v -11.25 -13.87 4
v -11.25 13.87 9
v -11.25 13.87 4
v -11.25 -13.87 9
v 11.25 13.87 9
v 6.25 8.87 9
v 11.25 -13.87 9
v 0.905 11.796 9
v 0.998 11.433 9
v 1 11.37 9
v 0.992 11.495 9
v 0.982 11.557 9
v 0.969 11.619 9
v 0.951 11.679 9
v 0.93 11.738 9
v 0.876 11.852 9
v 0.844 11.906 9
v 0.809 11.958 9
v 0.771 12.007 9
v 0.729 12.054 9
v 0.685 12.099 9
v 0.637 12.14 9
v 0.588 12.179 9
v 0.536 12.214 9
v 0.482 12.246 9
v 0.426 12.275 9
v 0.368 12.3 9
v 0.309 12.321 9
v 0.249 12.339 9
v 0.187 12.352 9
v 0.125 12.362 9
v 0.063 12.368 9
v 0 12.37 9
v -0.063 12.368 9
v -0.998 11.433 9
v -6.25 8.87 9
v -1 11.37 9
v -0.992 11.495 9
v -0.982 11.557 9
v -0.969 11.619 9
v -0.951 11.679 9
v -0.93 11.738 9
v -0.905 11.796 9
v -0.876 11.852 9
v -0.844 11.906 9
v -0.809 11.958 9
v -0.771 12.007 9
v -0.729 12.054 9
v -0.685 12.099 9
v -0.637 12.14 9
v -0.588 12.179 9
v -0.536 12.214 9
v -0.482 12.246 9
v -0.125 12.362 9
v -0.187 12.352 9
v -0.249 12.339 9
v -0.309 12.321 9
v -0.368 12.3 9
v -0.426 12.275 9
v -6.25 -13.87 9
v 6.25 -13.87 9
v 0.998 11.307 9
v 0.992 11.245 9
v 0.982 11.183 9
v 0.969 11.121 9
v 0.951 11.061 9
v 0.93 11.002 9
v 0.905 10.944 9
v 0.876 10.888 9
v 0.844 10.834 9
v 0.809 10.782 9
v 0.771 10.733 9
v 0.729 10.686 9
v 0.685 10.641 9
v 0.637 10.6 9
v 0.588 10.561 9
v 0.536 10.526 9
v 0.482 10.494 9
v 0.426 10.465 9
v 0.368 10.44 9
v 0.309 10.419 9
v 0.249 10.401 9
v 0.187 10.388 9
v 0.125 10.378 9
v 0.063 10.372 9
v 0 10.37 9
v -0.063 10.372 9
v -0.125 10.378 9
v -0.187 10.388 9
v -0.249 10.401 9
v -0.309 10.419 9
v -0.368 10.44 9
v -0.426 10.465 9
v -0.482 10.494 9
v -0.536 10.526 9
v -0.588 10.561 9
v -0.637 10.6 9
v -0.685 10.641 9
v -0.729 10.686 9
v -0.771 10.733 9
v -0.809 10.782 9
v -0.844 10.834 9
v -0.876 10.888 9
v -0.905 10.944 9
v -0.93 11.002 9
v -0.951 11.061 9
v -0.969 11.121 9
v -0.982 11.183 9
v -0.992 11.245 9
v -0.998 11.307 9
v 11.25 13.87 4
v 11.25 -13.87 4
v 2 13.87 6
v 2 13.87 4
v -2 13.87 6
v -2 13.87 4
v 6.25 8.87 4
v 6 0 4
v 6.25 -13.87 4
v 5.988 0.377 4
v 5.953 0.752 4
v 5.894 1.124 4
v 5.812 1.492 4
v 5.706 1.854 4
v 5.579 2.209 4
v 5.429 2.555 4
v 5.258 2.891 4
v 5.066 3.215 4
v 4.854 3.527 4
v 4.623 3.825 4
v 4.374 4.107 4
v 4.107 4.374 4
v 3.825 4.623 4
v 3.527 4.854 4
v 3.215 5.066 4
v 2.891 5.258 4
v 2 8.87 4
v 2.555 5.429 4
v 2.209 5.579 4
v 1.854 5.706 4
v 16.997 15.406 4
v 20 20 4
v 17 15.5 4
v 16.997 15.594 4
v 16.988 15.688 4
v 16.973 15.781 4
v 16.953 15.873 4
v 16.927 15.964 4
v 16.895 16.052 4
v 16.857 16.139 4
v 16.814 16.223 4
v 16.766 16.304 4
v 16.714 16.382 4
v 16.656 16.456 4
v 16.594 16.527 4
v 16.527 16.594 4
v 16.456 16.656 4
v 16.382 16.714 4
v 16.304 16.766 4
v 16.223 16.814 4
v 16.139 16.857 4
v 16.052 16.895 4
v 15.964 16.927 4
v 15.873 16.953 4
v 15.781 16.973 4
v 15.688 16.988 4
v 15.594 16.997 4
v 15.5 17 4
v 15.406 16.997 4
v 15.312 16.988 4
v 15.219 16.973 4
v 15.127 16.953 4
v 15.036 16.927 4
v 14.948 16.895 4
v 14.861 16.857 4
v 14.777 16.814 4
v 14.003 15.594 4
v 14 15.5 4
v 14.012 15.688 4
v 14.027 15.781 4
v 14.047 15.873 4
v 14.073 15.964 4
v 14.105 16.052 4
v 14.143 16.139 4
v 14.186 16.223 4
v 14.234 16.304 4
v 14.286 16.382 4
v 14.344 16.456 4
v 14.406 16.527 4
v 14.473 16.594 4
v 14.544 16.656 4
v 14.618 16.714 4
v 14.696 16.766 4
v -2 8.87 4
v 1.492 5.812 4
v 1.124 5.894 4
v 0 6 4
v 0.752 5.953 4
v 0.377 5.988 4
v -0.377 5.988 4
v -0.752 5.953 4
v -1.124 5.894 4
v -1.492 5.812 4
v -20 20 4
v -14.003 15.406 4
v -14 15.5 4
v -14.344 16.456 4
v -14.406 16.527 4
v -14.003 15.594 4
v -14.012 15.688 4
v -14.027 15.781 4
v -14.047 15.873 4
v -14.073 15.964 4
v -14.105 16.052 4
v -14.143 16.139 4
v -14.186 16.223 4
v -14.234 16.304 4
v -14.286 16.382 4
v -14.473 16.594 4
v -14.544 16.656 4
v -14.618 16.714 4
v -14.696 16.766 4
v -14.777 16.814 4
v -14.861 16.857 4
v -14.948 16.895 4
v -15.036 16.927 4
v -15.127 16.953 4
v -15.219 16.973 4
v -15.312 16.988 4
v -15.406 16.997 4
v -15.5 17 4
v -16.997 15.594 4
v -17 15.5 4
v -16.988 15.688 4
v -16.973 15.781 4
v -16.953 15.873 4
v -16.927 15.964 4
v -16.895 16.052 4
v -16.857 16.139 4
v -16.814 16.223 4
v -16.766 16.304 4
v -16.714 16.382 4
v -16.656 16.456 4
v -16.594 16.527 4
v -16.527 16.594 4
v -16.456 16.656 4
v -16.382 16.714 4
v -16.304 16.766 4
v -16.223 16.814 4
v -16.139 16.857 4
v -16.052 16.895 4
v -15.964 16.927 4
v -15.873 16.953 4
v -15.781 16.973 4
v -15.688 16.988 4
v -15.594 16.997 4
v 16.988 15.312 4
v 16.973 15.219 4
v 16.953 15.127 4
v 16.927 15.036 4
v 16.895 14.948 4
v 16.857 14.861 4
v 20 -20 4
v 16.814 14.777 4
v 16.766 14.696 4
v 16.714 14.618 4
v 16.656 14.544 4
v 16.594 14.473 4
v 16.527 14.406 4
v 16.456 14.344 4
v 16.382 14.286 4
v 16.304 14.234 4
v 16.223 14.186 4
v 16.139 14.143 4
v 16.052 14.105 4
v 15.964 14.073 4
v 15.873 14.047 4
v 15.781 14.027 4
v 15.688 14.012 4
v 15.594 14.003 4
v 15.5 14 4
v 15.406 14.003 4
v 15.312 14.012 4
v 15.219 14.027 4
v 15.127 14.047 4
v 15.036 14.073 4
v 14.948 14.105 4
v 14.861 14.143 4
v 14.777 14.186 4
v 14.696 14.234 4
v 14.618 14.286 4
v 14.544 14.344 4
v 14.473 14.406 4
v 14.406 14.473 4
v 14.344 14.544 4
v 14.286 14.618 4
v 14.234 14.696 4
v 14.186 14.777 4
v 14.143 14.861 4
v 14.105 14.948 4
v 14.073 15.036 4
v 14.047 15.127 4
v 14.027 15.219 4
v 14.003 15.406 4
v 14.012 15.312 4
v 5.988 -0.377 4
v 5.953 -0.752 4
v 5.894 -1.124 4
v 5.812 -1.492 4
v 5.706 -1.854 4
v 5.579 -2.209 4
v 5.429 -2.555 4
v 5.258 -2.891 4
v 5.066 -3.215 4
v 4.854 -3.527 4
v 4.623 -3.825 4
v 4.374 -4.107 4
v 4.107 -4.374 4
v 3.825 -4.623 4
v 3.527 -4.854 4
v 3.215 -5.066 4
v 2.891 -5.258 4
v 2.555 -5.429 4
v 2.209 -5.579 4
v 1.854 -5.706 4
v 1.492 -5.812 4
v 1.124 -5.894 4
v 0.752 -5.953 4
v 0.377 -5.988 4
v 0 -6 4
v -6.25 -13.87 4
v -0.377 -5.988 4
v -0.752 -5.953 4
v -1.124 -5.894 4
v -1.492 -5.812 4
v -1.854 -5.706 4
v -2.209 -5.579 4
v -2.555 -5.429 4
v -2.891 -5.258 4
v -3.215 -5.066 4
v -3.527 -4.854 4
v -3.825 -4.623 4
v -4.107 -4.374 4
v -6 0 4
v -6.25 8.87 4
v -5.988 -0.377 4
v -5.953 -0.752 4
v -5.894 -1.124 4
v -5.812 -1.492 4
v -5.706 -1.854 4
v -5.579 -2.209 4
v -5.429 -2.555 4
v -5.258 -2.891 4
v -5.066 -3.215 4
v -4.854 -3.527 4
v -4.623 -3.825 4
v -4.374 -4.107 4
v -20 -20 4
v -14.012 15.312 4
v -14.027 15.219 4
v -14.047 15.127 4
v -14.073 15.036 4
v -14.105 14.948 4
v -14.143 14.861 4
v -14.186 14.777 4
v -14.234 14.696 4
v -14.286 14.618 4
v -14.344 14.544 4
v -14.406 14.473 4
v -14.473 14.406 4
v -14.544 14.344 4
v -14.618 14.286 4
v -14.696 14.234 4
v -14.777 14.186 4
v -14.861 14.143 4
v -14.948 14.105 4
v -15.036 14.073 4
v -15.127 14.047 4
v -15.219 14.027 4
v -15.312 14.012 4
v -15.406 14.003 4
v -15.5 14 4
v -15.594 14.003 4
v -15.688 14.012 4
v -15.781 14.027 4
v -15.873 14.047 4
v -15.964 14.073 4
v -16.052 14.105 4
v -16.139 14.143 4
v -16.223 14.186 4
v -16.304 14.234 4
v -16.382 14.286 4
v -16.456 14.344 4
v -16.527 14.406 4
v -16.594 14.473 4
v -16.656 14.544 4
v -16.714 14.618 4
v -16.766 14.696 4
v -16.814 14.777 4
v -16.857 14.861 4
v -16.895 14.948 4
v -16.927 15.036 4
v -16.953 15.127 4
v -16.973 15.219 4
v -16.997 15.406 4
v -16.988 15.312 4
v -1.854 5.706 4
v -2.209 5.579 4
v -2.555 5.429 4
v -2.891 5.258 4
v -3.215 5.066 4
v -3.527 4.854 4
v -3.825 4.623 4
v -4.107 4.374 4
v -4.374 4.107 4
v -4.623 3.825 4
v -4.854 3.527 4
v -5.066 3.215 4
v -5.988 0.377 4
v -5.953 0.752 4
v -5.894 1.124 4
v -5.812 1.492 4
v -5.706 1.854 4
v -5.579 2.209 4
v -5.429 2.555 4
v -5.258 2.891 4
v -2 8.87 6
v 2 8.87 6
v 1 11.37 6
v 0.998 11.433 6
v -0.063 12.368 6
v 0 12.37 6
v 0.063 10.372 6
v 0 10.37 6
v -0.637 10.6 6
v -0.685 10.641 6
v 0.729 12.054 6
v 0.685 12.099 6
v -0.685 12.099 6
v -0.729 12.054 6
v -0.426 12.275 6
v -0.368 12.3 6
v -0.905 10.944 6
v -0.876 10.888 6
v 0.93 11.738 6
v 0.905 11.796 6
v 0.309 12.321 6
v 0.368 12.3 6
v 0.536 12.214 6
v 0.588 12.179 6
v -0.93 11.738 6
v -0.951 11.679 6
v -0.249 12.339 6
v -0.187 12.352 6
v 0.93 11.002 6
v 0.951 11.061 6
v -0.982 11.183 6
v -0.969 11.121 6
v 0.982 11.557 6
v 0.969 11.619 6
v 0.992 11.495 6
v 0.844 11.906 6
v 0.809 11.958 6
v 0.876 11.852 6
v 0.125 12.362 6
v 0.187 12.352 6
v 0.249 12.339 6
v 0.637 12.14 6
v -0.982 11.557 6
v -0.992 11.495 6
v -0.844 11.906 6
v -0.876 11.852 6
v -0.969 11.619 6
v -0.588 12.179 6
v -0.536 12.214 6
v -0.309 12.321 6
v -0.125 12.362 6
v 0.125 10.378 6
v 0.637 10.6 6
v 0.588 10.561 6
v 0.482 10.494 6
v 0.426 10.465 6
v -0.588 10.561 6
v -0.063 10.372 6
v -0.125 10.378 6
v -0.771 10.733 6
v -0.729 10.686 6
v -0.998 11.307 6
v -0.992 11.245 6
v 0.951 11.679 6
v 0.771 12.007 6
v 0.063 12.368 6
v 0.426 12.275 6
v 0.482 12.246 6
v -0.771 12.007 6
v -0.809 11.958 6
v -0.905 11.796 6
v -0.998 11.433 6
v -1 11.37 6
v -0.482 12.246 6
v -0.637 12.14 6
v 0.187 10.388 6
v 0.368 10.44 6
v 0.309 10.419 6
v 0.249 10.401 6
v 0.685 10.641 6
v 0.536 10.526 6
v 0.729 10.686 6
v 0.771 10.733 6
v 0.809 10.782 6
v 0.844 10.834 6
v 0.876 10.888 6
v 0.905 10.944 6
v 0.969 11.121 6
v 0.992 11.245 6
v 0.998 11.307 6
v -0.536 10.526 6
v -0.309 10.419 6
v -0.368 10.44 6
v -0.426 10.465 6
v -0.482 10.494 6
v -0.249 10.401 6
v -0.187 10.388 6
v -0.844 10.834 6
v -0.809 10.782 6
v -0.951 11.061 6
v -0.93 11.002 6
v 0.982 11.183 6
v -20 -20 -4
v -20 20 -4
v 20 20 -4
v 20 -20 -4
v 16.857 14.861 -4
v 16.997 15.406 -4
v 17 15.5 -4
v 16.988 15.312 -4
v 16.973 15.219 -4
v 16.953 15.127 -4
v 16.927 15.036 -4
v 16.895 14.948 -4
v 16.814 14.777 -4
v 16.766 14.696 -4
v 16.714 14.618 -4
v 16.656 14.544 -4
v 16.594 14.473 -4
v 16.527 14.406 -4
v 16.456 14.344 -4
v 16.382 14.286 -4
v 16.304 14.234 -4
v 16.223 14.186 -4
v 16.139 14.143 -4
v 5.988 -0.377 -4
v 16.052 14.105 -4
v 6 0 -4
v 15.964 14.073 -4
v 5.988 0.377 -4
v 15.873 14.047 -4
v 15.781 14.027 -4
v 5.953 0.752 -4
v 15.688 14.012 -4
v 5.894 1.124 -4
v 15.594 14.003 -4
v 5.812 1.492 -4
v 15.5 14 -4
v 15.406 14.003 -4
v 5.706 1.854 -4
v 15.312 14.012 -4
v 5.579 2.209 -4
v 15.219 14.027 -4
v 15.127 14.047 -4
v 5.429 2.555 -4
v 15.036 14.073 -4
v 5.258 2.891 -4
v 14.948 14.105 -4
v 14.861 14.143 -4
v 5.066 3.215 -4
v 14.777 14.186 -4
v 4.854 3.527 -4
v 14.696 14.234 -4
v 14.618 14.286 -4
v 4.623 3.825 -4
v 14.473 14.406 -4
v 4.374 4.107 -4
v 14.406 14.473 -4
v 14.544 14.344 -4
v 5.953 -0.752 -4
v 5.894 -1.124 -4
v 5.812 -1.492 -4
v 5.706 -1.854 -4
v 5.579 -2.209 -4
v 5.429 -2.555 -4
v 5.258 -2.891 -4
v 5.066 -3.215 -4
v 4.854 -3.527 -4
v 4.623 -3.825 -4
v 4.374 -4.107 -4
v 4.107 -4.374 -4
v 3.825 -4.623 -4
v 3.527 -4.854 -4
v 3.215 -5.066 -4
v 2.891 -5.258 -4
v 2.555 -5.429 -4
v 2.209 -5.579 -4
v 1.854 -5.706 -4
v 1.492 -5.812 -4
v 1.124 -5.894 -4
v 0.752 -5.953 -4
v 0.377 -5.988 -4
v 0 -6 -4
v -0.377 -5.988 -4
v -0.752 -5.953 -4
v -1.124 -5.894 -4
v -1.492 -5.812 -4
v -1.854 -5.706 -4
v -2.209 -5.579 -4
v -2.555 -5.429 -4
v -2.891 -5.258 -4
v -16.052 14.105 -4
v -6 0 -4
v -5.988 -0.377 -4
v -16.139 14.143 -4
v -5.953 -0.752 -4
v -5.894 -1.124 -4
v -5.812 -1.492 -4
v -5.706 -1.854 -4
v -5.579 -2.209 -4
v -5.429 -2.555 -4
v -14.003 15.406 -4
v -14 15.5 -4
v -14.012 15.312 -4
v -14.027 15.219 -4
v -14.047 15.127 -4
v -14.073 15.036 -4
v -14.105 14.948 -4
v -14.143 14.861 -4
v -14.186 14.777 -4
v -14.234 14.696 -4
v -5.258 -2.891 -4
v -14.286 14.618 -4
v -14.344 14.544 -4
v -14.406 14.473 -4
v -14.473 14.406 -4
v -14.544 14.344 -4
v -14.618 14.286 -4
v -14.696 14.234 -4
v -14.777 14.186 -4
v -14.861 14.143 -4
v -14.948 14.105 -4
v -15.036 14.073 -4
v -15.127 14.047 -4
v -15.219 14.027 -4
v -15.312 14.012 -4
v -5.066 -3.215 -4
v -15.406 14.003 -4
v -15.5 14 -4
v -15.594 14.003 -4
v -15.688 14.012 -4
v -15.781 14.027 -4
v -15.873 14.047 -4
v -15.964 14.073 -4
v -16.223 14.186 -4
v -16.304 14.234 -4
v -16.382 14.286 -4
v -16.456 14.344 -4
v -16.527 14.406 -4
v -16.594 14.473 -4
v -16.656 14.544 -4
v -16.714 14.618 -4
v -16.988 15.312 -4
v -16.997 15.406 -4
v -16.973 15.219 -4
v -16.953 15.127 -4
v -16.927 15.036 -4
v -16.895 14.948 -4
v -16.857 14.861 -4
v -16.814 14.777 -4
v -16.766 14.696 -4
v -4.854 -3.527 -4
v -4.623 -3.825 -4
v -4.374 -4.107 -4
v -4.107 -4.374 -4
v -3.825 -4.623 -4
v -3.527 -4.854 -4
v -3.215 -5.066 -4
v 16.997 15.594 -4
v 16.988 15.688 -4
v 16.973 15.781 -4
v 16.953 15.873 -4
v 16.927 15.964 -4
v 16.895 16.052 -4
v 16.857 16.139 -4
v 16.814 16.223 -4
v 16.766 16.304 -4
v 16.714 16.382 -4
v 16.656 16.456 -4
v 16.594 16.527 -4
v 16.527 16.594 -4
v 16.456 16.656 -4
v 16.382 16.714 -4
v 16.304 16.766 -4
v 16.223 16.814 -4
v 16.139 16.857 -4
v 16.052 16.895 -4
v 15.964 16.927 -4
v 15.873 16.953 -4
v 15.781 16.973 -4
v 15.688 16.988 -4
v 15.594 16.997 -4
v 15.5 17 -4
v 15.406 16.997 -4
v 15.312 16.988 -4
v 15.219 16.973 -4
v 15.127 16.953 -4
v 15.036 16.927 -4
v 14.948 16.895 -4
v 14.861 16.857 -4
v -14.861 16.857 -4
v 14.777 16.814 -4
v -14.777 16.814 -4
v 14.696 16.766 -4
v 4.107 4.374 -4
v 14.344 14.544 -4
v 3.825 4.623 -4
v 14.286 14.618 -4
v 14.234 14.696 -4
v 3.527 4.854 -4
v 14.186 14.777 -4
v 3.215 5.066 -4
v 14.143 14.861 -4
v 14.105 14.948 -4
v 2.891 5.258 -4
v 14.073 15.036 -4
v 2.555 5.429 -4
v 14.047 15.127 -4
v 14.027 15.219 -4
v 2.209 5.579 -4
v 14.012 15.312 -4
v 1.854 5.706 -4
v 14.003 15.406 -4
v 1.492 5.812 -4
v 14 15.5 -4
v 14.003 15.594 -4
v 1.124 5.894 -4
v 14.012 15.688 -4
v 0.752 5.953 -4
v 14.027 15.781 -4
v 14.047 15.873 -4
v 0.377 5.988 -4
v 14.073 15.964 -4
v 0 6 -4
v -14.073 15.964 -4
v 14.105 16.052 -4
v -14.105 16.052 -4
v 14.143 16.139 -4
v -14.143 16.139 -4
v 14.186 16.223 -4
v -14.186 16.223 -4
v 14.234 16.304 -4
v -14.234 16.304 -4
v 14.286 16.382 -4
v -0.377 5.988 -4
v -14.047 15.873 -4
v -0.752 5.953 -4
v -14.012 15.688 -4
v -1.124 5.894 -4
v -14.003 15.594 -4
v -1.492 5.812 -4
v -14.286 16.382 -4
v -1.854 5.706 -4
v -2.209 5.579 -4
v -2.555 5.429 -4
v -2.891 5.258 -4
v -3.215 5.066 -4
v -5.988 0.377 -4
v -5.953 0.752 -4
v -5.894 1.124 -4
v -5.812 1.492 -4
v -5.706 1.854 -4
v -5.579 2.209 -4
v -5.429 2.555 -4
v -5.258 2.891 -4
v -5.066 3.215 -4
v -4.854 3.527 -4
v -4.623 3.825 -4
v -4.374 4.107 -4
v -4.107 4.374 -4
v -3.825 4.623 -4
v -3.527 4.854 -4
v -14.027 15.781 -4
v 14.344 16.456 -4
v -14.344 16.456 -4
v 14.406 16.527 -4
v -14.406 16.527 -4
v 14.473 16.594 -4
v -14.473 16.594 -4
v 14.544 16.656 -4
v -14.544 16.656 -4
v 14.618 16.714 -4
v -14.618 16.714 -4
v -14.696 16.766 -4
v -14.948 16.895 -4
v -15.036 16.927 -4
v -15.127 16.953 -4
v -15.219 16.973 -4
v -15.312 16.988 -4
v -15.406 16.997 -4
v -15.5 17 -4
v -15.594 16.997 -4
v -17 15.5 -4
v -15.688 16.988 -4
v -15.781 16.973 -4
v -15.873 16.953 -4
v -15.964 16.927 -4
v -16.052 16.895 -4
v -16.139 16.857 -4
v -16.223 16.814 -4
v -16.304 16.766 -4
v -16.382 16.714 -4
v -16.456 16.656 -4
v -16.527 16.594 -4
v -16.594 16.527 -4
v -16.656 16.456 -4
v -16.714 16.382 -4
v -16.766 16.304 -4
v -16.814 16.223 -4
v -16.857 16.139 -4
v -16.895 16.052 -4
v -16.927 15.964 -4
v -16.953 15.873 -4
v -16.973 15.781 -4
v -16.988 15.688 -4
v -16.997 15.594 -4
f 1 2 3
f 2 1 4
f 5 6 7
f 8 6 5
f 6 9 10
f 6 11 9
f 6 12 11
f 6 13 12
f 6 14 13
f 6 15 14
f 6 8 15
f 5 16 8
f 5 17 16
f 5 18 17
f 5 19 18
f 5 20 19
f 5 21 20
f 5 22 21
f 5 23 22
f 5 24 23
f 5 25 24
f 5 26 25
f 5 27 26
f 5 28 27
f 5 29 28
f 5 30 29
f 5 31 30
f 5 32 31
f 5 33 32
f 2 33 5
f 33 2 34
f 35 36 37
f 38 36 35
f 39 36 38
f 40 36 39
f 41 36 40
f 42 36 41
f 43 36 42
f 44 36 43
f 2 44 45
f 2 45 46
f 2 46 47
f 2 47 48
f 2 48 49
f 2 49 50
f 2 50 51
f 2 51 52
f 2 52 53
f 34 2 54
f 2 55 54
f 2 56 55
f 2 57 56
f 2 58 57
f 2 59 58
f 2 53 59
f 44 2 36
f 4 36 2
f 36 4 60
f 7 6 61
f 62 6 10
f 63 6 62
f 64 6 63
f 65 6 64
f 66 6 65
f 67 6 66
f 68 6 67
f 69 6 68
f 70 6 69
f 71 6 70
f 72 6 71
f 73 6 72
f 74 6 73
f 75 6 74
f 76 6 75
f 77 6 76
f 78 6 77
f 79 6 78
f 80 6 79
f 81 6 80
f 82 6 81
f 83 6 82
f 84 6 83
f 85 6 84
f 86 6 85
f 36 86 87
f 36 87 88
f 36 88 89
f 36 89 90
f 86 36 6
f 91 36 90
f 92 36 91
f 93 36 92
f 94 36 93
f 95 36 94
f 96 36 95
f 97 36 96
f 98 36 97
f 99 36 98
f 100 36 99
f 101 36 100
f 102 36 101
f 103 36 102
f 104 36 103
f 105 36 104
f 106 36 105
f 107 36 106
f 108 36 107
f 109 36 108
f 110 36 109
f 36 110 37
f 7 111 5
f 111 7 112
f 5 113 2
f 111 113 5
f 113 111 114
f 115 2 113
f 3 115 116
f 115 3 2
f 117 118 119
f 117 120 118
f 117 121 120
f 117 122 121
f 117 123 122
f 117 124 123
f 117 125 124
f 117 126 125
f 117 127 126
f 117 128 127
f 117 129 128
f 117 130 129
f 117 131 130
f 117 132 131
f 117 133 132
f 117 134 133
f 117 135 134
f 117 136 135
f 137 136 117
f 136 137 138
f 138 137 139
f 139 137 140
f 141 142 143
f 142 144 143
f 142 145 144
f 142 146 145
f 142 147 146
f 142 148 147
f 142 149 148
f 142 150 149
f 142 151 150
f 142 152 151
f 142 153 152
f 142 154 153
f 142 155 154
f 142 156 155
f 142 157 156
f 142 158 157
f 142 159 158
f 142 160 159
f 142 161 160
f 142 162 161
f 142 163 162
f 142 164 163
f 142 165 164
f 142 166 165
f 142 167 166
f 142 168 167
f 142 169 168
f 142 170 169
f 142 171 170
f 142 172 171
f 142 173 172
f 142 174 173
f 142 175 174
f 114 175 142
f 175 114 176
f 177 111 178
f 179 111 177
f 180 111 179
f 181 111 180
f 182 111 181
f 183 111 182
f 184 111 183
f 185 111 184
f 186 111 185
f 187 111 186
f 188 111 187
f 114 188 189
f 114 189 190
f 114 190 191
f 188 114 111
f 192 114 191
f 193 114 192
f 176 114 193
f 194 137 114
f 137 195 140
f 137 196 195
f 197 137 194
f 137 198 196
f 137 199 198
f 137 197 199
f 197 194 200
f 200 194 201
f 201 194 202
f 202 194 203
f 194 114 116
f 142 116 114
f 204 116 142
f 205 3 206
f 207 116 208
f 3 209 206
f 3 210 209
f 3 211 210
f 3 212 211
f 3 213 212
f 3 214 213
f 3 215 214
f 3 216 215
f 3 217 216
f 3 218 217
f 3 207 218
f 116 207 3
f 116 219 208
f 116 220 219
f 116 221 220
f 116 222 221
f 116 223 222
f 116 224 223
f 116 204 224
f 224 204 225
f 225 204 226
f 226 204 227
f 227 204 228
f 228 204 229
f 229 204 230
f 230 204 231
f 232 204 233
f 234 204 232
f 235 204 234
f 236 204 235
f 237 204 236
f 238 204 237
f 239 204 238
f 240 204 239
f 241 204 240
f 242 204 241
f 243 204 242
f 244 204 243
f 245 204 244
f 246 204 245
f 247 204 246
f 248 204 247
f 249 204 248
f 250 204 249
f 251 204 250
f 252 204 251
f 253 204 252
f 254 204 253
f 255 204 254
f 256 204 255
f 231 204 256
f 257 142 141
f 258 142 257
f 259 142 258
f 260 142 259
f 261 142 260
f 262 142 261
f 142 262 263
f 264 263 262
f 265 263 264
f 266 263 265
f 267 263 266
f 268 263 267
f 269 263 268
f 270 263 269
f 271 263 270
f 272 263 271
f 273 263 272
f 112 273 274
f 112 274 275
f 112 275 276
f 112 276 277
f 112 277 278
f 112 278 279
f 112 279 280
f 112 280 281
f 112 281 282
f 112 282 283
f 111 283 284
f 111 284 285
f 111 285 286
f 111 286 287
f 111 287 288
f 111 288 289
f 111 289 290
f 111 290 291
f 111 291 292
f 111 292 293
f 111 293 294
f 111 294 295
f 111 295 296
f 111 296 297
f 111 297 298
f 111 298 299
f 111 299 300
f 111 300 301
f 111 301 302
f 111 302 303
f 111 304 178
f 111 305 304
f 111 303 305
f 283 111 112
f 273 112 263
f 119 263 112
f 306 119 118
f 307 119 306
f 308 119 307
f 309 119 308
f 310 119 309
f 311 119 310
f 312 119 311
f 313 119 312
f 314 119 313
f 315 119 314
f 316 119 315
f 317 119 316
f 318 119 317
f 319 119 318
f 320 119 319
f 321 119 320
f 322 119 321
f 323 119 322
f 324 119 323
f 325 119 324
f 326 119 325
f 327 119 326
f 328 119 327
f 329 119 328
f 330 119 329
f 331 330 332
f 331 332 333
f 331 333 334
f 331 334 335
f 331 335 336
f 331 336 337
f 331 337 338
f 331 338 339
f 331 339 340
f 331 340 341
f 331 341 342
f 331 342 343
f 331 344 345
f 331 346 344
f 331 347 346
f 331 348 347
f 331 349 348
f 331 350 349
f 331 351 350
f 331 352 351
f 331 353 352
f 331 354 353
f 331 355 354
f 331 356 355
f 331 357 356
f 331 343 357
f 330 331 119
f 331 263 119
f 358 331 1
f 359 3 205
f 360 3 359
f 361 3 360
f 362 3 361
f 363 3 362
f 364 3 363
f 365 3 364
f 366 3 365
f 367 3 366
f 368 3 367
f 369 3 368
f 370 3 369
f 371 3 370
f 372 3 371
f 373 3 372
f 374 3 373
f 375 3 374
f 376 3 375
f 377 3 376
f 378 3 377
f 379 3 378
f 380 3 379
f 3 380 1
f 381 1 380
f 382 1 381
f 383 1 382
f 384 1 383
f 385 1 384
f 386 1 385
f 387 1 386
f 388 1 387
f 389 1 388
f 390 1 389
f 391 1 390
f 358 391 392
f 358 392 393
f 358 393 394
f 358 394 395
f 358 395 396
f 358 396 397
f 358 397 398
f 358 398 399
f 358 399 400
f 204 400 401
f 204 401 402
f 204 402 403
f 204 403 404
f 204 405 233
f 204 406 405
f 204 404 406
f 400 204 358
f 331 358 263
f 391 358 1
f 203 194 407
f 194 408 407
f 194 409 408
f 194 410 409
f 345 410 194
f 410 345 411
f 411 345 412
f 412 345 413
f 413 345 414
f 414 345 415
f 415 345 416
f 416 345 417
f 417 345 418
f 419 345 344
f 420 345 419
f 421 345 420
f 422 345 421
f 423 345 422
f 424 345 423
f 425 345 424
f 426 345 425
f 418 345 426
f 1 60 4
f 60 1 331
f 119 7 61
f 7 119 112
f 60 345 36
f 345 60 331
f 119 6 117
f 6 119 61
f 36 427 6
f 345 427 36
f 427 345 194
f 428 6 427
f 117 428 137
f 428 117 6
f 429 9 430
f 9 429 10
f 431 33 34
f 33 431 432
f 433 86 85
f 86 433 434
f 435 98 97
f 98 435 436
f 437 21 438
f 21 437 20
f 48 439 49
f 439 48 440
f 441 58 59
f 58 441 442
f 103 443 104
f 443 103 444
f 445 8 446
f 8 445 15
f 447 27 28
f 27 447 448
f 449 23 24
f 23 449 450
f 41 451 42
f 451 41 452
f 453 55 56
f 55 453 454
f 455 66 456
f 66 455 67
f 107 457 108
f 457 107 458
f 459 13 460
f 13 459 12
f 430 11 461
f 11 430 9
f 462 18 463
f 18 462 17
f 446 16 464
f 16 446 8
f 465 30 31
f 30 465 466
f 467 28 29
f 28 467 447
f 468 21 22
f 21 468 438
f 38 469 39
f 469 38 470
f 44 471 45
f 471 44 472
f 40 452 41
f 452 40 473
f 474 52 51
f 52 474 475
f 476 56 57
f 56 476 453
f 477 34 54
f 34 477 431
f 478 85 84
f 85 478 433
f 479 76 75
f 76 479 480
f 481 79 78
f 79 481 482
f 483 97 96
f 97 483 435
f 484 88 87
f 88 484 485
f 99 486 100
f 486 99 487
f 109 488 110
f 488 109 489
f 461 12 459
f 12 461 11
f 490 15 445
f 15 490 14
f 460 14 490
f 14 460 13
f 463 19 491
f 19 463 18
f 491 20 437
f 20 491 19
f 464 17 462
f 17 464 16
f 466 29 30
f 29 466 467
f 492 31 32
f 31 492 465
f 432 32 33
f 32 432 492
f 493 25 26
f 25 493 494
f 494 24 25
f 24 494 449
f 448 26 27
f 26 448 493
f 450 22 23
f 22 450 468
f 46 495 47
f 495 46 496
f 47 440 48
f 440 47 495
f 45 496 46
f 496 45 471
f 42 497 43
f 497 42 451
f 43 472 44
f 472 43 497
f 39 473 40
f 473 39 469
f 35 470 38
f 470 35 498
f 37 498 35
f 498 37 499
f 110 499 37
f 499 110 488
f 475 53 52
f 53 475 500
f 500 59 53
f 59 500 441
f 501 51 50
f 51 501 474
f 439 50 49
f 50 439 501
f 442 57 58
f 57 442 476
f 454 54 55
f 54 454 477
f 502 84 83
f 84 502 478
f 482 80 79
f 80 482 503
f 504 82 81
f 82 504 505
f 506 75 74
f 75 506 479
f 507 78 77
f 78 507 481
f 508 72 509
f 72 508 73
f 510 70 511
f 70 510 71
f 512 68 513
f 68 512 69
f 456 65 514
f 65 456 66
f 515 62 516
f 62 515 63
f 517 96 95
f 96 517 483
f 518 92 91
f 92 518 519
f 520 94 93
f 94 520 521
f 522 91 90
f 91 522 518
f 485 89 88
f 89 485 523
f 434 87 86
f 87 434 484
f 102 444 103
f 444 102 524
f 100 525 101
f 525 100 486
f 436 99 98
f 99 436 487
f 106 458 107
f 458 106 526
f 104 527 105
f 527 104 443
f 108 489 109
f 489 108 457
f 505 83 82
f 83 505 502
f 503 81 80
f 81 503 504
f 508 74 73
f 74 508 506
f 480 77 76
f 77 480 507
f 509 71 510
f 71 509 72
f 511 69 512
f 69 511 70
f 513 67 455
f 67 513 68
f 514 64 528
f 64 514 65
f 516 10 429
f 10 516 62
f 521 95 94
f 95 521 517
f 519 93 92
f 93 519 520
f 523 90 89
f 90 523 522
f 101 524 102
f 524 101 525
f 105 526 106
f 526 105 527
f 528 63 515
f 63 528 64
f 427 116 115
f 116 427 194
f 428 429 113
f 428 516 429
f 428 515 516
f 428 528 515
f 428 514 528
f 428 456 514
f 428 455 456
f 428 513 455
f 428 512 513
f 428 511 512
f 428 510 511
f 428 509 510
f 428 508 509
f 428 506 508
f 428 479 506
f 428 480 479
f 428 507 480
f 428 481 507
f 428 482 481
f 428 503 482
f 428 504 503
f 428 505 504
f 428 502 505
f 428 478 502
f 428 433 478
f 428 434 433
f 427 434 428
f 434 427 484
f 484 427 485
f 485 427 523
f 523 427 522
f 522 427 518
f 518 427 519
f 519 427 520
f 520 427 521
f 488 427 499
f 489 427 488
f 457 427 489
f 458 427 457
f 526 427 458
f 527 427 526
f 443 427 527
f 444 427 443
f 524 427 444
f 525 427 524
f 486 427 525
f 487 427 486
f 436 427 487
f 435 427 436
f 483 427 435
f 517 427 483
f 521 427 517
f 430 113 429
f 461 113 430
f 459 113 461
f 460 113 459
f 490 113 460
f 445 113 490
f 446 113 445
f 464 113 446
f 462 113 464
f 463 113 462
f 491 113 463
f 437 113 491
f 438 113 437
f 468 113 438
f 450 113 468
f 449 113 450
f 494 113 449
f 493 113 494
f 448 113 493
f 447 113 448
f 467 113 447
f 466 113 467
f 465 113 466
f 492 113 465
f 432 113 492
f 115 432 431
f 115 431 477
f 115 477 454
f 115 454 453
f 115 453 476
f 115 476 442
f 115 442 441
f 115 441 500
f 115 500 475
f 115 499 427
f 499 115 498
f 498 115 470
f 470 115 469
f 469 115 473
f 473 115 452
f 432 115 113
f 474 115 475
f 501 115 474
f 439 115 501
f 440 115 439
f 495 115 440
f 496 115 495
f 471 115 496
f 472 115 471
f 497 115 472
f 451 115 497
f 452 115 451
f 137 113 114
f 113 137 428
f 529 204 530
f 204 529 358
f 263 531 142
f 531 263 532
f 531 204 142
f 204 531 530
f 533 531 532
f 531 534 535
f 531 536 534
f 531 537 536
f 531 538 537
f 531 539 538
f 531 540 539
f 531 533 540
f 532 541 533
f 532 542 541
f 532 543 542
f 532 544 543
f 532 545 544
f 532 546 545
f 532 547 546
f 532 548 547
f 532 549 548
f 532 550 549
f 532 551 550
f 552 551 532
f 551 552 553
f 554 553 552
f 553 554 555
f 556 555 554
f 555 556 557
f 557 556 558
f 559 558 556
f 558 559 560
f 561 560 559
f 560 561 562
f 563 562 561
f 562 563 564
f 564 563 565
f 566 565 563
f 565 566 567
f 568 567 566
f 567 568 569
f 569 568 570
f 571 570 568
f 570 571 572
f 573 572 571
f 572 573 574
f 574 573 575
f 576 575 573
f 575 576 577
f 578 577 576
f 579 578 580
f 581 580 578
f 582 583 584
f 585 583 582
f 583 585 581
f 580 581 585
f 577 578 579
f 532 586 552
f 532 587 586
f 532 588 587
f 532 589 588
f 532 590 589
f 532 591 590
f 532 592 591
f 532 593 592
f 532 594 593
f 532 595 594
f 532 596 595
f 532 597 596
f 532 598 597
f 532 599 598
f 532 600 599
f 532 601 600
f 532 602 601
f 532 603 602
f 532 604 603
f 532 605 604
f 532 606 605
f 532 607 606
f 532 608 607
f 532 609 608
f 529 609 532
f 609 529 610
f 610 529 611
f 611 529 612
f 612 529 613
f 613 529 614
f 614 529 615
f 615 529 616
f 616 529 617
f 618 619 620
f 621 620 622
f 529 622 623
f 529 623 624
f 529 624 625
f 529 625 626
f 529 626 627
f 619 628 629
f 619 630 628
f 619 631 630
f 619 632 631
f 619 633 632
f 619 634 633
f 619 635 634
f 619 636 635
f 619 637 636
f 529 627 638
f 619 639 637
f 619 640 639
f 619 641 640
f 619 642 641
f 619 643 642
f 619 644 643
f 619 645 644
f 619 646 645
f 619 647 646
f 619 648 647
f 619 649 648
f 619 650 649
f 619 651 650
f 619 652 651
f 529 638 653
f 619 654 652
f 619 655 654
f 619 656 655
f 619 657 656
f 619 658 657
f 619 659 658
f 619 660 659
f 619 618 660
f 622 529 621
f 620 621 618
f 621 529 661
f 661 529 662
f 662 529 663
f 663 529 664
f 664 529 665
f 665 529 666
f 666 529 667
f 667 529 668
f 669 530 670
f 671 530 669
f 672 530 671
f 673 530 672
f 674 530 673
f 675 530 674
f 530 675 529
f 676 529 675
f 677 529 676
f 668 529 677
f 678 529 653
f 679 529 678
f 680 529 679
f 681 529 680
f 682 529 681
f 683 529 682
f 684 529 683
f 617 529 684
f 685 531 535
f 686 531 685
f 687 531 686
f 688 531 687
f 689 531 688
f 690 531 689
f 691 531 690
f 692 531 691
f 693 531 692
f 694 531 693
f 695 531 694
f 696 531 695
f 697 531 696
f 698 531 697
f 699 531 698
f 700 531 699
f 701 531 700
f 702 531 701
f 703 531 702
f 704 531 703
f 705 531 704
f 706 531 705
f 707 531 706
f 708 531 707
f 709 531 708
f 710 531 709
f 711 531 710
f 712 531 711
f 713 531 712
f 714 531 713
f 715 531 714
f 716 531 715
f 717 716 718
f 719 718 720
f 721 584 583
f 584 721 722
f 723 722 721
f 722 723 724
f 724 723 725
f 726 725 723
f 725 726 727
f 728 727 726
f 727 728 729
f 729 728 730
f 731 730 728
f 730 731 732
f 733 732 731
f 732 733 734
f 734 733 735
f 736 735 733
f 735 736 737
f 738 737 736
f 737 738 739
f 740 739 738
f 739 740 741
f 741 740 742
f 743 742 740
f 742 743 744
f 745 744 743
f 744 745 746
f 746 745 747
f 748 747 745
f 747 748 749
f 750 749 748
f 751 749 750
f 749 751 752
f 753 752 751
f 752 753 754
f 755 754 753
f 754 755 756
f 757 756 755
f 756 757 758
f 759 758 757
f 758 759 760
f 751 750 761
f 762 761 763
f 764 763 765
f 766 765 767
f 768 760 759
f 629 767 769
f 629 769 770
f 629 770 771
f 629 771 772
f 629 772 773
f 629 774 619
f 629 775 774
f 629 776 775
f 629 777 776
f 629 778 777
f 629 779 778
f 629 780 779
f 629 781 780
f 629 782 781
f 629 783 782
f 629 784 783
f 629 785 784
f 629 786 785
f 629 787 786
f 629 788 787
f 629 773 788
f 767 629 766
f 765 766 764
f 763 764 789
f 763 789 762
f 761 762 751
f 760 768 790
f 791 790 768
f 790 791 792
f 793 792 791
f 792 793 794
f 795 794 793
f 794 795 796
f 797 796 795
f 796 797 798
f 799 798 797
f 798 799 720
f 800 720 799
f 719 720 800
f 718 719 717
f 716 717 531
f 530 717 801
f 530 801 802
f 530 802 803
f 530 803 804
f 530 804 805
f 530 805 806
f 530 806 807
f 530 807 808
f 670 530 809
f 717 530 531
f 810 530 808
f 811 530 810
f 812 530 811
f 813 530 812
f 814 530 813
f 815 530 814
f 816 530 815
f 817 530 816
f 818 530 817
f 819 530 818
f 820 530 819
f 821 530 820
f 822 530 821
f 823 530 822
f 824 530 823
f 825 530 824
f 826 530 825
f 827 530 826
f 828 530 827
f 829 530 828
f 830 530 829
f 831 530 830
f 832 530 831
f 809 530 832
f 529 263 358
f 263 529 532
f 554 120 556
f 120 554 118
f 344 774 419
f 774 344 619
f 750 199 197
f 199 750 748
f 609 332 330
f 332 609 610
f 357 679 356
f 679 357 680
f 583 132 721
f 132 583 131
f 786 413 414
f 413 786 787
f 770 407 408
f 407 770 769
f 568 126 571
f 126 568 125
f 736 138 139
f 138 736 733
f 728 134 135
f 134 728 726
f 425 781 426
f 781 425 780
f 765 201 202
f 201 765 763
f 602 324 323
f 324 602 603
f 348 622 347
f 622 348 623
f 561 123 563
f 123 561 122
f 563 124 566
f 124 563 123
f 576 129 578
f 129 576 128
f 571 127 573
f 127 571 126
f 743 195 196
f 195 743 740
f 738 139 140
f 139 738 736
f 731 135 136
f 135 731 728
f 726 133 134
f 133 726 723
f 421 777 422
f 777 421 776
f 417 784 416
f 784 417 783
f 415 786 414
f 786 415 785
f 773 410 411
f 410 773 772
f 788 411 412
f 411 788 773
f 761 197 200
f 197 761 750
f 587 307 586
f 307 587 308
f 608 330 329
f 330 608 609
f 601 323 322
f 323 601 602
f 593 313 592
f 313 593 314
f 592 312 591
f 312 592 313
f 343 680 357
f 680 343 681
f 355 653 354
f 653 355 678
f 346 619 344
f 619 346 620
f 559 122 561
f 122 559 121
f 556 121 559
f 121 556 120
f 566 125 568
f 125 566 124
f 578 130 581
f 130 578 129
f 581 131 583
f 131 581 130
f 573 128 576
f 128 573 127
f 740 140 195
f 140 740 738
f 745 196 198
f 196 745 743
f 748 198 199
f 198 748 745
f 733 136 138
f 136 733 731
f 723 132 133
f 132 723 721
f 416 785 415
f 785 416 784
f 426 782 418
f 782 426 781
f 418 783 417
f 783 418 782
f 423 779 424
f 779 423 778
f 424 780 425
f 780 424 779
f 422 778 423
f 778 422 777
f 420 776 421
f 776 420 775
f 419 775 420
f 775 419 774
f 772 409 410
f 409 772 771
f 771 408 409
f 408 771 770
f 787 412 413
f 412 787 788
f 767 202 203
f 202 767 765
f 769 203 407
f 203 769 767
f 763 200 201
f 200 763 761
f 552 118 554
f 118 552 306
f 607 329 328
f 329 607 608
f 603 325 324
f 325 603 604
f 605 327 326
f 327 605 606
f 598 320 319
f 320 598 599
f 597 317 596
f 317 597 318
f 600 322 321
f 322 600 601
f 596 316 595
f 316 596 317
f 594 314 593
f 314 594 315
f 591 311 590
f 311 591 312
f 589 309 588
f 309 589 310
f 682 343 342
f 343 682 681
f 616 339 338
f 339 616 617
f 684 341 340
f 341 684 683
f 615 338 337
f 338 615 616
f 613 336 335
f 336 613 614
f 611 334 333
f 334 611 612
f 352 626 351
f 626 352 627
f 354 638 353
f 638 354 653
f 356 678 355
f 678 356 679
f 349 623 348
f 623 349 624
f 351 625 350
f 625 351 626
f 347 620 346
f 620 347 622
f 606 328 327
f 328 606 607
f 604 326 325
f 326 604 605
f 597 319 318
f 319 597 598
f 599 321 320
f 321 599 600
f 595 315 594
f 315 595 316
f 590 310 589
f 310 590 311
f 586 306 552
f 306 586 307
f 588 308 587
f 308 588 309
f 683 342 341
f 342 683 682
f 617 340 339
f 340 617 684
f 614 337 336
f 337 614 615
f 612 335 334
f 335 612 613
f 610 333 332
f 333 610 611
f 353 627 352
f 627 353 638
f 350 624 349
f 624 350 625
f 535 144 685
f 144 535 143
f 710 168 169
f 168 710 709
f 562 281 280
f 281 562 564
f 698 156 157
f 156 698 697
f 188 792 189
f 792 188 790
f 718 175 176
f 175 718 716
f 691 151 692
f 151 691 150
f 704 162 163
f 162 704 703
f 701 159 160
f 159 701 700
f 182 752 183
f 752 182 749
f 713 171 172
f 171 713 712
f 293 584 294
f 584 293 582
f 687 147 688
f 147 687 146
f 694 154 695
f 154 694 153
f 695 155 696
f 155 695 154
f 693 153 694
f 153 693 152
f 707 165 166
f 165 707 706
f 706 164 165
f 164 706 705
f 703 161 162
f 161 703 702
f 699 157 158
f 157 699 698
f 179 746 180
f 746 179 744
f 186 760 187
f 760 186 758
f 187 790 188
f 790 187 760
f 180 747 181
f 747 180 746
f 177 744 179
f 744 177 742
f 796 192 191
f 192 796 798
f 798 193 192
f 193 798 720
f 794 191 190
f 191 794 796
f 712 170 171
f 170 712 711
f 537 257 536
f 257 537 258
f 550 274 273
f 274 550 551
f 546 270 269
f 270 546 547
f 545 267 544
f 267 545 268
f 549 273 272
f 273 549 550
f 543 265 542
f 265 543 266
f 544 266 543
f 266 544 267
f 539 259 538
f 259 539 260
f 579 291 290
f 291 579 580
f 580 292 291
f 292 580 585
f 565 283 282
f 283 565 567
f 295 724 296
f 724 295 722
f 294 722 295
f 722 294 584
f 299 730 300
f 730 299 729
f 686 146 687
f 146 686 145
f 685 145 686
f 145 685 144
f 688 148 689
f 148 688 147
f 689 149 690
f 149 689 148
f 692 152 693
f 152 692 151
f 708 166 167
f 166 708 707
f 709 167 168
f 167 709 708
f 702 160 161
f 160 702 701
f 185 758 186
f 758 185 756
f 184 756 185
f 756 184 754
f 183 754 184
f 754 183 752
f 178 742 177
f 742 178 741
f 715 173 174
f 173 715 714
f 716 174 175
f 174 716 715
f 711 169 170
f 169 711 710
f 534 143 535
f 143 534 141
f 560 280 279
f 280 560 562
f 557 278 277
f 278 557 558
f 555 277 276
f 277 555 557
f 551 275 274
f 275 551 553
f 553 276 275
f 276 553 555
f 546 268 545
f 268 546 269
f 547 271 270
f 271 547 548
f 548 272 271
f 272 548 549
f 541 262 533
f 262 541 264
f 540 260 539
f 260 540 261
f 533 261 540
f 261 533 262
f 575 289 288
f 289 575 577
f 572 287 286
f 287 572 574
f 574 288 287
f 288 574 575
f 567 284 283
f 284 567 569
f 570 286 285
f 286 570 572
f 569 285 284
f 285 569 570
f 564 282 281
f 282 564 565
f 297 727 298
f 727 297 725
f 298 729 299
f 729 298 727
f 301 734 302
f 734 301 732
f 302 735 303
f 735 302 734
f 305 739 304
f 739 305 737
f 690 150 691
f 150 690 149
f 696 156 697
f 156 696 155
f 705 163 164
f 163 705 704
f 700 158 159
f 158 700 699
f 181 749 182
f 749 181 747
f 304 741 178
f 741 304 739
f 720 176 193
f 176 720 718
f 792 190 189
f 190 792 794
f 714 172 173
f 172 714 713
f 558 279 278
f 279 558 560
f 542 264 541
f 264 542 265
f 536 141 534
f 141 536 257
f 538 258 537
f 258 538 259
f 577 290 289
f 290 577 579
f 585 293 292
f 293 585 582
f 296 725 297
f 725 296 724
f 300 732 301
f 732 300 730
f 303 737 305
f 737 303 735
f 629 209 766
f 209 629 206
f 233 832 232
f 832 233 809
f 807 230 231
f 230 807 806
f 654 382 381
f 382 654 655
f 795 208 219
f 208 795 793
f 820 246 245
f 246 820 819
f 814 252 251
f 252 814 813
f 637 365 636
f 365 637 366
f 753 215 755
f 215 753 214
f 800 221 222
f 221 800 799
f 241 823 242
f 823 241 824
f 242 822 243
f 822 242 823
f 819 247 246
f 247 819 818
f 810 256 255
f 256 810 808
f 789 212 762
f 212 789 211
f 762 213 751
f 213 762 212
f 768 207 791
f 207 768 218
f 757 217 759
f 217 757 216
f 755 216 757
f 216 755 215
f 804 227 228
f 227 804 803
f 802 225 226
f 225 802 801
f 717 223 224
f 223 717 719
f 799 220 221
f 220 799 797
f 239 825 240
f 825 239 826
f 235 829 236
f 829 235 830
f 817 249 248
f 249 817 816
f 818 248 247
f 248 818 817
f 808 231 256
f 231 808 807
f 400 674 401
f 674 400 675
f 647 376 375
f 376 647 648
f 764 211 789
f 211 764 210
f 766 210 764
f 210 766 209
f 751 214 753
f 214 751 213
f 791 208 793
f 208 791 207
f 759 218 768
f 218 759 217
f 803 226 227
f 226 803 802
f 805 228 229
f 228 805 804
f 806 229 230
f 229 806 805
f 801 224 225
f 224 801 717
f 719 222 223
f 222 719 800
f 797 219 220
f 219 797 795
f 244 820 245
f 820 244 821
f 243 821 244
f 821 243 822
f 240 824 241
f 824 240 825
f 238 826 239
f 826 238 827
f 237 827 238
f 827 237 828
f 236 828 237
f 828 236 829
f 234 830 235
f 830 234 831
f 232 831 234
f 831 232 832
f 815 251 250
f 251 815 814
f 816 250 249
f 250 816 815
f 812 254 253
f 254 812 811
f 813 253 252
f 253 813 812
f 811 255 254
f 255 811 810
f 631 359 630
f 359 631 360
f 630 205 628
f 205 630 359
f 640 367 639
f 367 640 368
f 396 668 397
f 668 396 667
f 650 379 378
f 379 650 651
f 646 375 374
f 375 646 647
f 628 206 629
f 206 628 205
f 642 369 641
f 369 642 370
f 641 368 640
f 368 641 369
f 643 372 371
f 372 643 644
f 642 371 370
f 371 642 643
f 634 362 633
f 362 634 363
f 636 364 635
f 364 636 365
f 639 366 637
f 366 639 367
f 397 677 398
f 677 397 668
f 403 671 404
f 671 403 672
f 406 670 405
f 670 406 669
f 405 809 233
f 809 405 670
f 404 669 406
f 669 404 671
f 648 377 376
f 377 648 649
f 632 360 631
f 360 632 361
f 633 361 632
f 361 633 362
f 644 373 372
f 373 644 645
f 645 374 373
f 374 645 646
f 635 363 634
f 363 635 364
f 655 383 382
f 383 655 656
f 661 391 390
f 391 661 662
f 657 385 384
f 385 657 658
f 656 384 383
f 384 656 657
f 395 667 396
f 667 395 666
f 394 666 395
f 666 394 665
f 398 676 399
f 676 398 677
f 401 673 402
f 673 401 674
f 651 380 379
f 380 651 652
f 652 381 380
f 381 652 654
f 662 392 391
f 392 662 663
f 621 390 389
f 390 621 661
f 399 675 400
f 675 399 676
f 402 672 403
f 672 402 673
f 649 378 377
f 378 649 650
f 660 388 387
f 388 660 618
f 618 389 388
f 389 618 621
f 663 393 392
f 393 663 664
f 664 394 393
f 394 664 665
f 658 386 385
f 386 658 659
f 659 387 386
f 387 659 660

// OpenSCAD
d_small_hole = 3;
l_2_hole = 27.80 + d_small_hole;
l_frame = 40;
h_frame = 8;
r_big_hold = 6;
h_big_hold = 20;
p_small_hold = 31/2;
d_small_hold = 3;

t_top_block_frame = 5;

w_top_block_slot = 12.5;
l_top_block_slot = 22.74;

w_top_block = w_top_block_slot + 2 * t_top_block_frame;
l_top_block = l_top_block_slot + t_top_block_frame;
h_top_block = 5;

d_server_hole = 2;

top();
bottom();

module bottom() {
    difference() {
        cube([l_frame, l_frame, h_frame], center = true);

        //big hole
        cylinder(r = r_big_hold, h = h_big_hold, $fn=100, center = true);    

        //small hole
        translate([p_small_hold, p_small_hold, 0]) { 
            cylinder(d = d_small_hold, h = 20, $fn = 100, center = true);
        }
        //small hole
        translate([-p_small_hold, p_small_hold, 0]) { 
            cylinder(d = d_small_hold, h = 20, $fn = 100, center = true);
        }
    }
}

w_hole_bottom = 4;
l_hole_bottom = 100;
h_hole_bottom = 2;

module top() {
   difference() {
        translate([0, 0, (h_frame+h_top_block)/2]) {
            difference() {
                cube([w_top_block, l_top_block, h_top_block], center = true);
                translate([0, -(l_top_block-l_top_block_slot)/2, 0]) {
                    cube([w_top_block_slot, l_top_block_slot, h_top_block], center = true);
                }
                translate([0, (l_top_block/2-2.5), 0]) {
                    cylinder(d = d_server_hole, h = 30, center = true, $fn = 100);
                }
            }
        }
        translate([0, 0, (h_frame-h_hole_bottom)/2+h_hole_bottom]) {
            #cube([w_hole_bottom, l_hole_bottom, h_hole_bottom], center = true);
        }
    }
}
